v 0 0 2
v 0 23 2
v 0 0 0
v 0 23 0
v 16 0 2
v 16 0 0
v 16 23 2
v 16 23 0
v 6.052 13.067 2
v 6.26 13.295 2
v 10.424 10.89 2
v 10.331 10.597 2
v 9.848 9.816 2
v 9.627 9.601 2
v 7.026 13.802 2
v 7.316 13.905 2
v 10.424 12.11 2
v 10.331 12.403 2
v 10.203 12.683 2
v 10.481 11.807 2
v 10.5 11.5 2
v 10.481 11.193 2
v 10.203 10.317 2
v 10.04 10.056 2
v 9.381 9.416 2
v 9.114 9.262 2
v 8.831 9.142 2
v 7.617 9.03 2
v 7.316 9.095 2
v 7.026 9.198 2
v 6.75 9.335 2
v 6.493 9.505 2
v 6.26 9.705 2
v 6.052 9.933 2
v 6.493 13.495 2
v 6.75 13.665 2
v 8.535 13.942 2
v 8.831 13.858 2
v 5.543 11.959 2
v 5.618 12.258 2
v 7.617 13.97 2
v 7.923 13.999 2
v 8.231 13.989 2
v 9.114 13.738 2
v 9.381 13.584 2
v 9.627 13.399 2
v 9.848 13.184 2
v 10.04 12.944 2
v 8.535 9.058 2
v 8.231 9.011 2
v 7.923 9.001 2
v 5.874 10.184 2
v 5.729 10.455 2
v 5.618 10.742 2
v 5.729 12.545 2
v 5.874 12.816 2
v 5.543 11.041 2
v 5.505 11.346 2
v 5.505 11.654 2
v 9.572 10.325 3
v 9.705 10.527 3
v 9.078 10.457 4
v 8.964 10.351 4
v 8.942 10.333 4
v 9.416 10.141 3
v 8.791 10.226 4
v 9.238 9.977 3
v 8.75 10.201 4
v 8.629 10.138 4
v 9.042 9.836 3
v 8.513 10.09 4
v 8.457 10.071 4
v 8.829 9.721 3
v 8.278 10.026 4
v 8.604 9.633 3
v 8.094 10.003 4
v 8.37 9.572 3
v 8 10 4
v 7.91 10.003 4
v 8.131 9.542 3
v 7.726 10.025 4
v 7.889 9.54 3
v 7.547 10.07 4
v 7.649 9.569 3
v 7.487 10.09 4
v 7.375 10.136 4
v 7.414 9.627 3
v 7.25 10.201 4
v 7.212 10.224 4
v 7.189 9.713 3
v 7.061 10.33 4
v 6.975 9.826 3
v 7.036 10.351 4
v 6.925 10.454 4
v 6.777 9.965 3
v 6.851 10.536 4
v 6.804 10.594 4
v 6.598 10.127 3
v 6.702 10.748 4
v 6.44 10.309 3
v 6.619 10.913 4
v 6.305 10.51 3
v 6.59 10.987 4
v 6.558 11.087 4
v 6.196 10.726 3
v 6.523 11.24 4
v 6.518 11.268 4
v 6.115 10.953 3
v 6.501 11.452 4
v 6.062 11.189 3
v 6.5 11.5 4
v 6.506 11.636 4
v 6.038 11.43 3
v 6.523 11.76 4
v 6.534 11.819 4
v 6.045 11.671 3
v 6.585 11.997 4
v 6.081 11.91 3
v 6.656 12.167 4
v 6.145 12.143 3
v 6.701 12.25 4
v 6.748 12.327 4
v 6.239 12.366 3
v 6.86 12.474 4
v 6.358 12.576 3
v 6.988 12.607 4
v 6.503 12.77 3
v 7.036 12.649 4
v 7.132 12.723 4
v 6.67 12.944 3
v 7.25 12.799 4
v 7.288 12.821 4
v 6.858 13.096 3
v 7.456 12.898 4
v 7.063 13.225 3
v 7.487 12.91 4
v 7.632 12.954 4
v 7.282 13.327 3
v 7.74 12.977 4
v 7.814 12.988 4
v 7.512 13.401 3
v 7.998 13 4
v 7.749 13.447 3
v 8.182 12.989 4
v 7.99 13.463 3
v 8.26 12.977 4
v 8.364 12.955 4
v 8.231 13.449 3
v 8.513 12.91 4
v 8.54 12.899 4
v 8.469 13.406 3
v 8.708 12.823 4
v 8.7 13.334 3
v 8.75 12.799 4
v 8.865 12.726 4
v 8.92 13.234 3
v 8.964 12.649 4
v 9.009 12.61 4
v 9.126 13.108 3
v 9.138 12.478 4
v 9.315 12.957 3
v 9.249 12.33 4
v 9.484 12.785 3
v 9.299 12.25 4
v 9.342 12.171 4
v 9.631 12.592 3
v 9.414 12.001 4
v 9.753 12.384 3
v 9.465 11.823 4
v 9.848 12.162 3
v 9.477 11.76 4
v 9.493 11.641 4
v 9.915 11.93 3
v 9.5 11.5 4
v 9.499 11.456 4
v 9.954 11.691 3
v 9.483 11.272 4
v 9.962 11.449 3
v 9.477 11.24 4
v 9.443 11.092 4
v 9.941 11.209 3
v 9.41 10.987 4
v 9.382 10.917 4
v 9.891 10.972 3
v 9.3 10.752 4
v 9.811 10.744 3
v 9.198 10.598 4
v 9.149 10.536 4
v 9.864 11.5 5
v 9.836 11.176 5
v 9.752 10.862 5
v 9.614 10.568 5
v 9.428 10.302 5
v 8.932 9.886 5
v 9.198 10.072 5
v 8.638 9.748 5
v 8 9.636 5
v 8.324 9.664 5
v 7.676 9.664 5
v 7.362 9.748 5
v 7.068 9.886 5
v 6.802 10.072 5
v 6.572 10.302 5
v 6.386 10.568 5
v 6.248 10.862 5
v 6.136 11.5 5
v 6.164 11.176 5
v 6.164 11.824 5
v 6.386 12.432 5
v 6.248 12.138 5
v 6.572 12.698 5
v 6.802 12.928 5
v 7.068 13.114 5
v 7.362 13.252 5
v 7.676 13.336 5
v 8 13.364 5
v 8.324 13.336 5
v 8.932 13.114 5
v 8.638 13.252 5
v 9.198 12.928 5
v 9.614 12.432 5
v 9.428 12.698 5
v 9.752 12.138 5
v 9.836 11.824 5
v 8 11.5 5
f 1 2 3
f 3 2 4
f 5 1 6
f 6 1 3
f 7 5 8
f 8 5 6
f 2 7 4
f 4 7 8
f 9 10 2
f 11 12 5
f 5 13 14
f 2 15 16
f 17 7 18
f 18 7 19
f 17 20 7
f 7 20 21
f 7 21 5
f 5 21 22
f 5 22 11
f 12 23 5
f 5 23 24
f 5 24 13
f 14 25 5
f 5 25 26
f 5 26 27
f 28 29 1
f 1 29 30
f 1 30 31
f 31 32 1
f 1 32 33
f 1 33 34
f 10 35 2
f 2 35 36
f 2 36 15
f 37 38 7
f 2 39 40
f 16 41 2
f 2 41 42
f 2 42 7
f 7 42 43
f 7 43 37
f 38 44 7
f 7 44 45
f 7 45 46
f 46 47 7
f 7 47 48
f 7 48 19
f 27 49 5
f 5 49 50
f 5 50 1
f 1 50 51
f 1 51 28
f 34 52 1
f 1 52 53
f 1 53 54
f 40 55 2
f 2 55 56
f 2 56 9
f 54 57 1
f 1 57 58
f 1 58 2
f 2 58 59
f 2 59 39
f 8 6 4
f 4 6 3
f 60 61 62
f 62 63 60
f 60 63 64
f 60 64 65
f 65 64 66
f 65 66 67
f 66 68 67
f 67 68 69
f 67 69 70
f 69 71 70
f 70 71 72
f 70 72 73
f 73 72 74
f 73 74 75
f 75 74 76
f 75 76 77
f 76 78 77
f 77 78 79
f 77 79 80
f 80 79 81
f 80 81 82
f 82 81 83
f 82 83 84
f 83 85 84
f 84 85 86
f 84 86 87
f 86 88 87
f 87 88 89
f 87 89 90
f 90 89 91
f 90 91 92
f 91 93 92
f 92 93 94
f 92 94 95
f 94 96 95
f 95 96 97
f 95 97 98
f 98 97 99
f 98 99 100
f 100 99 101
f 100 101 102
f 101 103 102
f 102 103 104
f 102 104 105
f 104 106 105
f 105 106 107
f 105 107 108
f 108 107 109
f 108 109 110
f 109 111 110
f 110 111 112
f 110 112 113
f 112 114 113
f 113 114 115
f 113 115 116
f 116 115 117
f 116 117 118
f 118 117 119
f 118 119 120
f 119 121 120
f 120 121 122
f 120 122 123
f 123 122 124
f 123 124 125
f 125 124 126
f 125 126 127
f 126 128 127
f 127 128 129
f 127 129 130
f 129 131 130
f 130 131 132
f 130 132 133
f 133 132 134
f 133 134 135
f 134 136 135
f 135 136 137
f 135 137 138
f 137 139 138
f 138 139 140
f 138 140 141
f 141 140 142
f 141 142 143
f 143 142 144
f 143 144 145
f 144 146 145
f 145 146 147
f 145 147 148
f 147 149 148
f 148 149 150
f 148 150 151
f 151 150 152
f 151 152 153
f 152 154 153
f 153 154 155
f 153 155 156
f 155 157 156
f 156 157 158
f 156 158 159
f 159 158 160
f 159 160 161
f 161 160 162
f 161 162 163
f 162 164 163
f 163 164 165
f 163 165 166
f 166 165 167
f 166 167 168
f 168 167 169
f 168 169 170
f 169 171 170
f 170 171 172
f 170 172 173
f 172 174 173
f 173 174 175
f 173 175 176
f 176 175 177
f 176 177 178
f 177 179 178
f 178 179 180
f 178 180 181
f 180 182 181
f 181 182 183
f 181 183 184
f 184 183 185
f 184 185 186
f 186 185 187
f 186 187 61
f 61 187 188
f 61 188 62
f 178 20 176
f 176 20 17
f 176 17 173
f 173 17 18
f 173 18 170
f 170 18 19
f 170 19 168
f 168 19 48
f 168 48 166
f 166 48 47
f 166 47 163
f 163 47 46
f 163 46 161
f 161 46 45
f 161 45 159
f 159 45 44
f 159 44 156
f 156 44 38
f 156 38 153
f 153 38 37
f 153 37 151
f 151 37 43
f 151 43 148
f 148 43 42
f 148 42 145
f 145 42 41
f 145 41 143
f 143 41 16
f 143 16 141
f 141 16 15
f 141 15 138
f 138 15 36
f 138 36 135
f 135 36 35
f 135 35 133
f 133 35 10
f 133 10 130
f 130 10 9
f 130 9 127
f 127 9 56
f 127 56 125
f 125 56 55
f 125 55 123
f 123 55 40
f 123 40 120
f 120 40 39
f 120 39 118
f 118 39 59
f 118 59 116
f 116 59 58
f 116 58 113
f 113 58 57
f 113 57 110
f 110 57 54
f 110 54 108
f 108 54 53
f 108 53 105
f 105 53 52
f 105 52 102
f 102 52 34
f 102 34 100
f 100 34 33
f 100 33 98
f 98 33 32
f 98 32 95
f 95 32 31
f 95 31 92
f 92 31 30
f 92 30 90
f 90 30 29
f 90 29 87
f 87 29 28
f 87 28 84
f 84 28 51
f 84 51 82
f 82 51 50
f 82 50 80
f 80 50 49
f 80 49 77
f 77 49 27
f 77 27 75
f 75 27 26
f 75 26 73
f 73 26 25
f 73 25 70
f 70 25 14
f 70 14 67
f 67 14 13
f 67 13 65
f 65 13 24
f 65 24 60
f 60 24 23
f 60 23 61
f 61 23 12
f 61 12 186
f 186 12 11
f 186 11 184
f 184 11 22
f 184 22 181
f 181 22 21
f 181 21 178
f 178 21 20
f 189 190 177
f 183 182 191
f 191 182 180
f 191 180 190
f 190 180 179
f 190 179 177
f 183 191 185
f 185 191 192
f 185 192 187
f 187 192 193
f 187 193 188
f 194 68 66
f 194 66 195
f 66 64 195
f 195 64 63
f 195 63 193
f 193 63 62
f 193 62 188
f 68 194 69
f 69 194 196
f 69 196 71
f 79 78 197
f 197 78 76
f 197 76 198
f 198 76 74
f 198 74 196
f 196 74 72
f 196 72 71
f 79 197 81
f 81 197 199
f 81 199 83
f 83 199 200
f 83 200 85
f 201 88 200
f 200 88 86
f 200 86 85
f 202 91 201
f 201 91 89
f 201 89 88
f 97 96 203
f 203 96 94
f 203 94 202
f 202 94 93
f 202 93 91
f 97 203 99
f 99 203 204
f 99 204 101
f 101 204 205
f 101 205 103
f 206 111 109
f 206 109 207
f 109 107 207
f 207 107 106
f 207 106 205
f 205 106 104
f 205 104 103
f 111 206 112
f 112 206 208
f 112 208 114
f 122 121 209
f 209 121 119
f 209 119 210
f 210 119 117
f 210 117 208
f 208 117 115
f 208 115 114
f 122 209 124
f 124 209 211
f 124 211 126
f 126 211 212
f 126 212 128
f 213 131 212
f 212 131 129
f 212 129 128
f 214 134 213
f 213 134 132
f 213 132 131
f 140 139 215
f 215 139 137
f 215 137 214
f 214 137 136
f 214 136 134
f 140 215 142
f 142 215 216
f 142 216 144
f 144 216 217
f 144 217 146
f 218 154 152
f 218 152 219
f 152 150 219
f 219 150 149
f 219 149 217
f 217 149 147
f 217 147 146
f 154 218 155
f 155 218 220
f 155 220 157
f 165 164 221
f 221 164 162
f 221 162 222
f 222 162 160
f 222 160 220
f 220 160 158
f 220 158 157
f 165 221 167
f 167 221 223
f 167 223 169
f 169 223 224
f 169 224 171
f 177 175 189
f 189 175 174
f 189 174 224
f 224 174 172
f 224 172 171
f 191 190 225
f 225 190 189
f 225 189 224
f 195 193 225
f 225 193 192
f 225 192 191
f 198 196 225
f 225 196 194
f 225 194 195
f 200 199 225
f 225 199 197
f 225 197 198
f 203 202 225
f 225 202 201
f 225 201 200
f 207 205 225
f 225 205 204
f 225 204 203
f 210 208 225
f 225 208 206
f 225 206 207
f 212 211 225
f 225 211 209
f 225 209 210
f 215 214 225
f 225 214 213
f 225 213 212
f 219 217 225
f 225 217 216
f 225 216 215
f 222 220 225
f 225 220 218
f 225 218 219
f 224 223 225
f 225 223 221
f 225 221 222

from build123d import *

# Parameters (mm, degrees)
SKETCH1_W           = 16
SKETCH1_H           = 23
BOSS_EXTRUDE1_DEPTH = 2
SKETCH6_R           = 1.5
BOSS_EXTRUDE3_DEPTH = 1
BOSS_EXTRUDE3_DRAFT = -20


with BuildPart() as part:
    # Sketch1 → Boss-Extrude1 (new body)
    with BuildSketch(Plane.XY):
        with Locations((8, 11.5)):
            Rectangle(SKETCH1_W, SKETCH1_H)
    extrude(amount=BOSS_EXTRUDE1_DEPTH)

    # Loft1: read off the stored shape, not the designer's step
    # Loft1: loft between two sections, ruled curve by curve
    loft1_from = [
        Edge.make_bspline([(10.5, 11.5, 2), (10.5, 16.5, 2), (5.5, 16.5, 2), (5.5, 11.5, 2), (5.5, 6.5, 2), (10.5, 6.5, 2), (10.5, 11.5, 2)], [0, 0, 0, 0, 0.5, 0.5, 0.5, 1, 1, 1, 1], 3, [1, 0.333333333, 0.333333333, 1, 0.333333333, 0.333333333, 1]),
    ]
    loft1_to = [
        Edge.make_bspline([(9.382185261, 10.91727888, 4), (10.547627501, 13.681649403, 4), (7.783256979, 14.847091642, 4), (6.617814739, 12.08272112, 4), (5.452372499, 9.318350597, 4), (8.216743021, 8.152908358, 4), (9.382185261, 10.91727888, 4)], [0, 0, 0, 0, 0.5, 0.5, 0.5, 1, 1, 1, 1], 3, [1, 0.333333333, 0.333333333, 1, 0.333333333, 0.333333333, 1]),
    ]
    loft1 = Solid(Shell([*[Face.make_surface_from_curves(loft1_from[k], loft1_to[k]) for k in range(1)], Face(Wire(loft1_from)), Face(Wire(loft1_to))]))
    add(loft1)


with BuildPart() as boss_extrude3_tool:
    # Sketch6 → Boss-Extrude3 (with draft: the straight prism first)
    with BuildSketch(Plane.XY.offset(4)):
        with Locations((8, 11.5)):
            Circle(SKETCH6_R)
    extrude(amount=BOSS_EXTRUDE3_DEPTH)
    # Boss-Extrude3: the draft: its side faces are tilted about the plane it starts from
    boss_extrude3_sides = [boss_extrude3_tool.faces().sort_by_distance(p)[0] for p in [
        (6.5, 11.5, 4.5),
    ]]
    draft(boss_extrude3_sides, Plane.XY.offset(4), BOSS_EXTRUDE3_DRAFT)


with BuildPart() as part_1:
    add(part.part)

    # Boss-Extrude3: add boss_extrude3_tool
    add(boss_extrude3_tool.part)


solid = part_1.part
